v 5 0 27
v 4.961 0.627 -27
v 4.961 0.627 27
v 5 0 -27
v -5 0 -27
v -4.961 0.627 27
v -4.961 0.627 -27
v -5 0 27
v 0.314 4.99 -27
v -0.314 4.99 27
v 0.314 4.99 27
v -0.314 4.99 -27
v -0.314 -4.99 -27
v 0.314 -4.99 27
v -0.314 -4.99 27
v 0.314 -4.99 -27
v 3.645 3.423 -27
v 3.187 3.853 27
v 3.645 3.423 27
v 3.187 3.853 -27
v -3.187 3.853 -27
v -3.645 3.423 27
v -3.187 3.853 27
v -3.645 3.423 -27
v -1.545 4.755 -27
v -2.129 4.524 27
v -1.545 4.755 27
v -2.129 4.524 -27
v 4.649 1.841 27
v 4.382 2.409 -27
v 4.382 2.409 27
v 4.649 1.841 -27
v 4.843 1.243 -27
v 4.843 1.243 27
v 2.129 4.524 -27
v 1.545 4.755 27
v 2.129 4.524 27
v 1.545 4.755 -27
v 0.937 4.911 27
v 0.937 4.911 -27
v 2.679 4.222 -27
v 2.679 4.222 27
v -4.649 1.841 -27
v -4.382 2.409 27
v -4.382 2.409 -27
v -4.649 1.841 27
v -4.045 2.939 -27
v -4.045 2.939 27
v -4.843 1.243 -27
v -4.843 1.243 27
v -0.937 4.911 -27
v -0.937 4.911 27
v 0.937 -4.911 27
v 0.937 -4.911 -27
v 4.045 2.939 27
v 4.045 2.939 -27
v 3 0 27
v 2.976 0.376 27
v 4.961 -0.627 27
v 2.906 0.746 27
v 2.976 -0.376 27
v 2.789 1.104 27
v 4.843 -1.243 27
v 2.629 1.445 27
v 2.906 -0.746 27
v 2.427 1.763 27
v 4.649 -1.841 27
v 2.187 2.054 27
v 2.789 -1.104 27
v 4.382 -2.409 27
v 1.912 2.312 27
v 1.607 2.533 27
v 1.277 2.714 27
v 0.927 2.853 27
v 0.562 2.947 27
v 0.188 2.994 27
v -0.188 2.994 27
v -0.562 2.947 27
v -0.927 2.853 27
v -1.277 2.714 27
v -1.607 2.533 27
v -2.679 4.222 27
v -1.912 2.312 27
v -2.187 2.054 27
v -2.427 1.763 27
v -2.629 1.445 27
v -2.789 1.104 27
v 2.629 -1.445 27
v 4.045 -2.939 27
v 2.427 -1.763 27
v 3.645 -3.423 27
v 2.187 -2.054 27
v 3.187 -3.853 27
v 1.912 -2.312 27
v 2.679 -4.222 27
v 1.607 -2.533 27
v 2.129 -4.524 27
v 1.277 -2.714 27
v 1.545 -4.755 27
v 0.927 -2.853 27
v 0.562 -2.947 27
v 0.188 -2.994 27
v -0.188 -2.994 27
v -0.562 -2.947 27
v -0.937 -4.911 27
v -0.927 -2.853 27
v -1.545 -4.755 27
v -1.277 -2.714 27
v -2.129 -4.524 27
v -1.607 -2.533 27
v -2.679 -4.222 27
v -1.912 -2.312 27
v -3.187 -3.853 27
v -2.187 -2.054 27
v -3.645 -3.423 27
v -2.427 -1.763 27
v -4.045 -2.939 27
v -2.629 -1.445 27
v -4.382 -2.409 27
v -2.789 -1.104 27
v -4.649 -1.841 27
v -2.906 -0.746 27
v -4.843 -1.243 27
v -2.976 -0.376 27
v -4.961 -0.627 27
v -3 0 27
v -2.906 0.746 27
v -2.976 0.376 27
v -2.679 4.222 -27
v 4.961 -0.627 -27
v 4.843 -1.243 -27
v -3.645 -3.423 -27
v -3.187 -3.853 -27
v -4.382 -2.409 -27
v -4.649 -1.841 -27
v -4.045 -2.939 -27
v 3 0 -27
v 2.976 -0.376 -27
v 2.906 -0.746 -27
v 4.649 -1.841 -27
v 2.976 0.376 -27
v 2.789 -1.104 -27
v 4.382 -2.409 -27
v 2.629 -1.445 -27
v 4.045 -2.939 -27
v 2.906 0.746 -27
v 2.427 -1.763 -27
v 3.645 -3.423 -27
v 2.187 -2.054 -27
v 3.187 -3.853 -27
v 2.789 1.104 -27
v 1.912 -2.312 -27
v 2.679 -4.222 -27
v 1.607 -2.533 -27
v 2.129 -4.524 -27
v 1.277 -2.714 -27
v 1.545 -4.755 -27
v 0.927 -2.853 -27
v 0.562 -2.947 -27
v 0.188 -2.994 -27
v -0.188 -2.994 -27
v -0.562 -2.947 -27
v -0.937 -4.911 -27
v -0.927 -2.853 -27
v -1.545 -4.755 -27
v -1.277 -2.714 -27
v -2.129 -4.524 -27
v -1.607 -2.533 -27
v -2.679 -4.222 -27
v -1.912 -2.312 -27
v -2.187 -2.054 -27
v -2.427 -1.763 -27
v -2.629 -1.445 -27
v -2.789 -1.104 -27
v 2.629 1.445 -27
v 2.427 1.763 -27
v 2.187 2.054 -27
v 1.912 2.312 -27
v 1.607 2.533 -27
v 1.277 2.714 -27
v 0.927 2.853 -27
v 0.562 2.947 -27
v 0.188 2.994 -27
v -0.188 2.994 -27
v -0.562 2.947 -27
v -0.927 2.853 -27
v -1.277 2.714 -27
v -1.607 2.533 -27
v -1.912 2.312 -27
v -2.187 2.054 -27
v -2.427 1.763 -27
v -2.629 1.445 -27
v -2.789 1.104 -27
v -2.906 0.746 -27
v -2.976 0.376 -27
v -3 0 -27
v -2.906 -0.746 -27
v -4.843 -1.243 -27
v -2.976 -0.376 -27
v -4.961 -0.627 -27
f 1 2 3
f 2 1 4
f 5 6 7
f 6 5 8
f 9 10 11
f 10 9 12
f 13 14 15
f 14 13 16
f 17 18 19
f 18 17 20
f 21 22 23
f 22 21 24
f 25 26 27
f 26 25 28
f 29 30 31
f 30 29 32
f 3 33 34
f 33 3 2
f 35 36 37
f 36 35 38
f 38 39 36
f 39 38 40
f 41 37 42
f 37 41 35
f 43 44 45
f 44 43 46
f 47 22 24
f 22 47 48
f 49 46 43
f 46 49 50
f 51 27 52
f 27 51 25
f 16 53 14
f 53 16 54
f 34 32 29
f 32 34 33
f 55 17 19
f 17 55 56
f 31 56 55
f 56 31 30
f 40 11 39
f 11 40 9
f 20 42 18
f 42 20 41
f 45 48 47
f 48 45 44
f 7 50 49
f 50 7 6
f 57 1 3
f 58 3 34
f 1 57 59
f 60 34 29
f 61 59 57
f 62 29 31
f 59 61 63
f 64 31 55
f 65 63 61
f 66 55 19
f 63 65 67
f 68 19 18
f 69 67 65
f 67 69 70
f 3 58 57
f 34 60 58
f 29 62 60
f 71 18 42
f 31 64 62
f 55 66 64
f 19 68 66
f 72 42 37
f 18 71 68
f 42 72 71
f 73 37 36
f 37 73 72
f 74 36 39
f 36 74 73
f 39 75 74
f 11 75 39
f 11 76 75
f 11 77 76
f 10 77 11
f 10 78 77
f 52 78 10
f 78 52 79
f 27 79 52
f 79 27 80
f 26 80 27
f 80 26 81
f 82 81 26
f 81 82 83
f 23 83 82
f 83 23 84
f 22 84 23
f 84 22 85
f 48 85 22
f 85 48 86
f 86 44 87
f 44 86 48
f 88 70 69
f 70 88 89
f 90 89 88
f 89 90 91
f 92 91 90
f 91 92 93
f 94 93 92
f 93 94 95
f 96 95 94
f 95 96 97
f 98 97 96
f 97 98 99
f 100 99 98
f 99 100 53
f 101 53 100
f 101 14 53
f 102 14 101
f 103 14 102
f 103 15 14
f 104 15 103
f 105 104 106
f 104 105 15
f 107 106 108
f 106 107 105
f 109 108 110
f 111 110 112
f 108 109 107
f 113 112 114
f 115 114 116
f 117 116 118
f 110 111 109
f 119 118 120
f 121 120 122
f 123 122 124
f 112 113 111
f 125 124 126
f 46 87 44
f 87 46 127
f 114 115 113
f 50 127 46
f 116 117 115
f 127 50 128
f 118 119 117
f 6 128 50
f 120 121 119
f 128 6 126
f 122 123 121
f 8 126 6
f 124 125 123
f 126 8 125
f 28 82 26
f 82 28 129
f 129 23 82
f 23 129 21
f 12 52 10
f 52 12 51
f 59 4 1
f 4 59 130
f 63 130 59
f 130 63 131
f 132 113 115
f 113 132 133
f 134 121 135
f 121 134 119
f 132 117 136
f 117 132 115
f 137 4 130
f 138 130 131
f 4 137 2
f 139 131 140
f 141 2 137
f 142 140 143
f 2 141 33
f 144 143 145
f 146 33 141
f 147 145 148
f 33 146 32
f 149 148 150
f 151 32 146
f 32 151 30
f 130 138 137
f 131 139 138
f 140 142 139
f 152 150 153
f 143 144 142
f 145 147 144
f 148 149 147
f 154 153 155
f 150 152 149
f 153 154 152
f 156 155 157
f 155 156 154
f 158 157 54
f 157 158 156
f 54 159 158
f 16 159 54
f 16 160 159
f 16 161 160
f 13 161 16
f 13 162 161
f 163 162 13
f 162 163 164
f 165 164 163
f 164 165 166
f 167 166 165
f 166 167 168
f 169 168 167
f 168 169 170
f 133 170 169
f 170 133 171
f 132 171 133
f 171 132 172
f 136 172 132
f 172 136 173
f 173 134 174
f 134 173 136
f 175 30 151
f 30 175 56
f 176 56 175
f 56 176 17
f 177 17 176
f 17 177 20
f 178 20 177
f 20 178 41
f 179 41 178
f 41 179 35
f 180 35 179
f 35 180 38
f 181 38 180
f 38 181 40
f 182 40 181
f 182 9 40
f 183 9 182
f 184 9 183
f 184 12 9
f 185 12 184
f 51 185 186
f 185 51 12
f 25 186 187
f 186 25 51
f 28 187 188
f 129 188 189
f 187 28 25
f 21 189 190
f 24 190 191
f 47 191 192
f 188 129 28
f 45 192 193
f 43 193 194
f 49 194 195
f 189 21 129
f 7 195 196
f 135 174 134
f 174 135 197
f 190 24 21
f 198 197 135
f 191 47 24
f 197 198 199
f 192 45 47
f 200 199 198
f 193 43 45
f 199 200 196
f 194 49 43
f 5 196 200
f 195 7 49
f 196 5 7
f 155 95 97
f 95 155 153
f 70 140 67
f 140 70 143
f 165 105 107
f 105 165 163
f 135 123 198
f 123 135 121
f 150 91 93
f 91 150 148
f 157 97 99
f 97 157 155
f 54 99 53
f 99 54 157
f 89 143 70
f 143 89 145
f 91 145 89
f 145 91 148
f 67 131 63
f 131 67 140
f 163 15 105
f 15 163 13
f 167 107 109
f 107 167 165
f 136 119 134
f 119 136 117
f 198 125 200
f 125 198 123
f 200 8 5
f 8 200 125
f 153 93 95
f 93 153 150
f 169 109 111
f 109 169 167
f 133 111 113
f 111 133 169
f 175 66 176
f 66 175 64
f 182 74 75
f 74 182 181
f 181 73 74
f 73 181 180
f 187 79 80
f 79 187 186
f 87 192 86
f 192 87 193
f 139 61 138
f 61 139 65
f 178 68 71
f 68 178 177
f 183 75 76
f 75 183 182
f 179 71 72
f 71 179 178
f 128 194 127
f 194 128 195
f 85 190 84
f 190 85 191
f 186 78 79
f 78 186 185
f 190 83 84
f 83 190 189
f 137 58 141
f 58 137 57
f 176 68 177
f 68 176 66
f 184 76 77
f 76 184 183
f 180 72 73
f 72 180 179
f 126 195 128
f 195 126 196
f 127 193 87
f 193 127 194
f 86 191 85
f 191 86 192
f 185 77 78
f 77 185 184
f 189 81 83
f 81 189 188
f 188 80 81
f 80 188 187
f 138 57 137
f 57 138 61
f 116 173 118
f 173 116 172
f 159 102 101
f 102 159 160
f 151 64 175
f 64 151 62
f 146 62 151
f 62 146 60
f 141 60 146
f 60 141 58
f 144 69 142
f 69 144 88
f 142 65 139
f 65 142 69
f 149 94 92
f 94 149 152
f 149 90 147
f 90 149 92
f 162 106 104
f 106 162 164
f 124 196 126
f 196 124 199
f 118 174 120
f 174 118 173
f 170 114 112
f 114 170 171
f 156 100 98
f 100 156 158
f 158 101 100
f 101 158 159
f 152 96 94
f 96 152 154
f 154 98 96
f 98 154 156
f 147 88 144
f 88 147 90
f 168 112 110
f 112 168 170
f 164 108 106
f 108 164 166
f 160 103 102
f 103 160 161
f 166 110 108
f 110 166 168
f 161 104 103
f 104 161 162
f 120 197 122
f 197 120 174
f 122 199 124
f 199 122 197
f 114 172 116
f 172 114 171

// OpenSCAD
$fn = 50;


difference() {
	union() {
		translate(v = [0, 0, -27.0000000000]) {
			cylinder(h = 54, r = 5.0000000000);
		}
	}
	union() {
		translate(v = [0, 0, -100.0000000000]) {
			cylinder(h = 200, r = 3);
		}
	}
}
